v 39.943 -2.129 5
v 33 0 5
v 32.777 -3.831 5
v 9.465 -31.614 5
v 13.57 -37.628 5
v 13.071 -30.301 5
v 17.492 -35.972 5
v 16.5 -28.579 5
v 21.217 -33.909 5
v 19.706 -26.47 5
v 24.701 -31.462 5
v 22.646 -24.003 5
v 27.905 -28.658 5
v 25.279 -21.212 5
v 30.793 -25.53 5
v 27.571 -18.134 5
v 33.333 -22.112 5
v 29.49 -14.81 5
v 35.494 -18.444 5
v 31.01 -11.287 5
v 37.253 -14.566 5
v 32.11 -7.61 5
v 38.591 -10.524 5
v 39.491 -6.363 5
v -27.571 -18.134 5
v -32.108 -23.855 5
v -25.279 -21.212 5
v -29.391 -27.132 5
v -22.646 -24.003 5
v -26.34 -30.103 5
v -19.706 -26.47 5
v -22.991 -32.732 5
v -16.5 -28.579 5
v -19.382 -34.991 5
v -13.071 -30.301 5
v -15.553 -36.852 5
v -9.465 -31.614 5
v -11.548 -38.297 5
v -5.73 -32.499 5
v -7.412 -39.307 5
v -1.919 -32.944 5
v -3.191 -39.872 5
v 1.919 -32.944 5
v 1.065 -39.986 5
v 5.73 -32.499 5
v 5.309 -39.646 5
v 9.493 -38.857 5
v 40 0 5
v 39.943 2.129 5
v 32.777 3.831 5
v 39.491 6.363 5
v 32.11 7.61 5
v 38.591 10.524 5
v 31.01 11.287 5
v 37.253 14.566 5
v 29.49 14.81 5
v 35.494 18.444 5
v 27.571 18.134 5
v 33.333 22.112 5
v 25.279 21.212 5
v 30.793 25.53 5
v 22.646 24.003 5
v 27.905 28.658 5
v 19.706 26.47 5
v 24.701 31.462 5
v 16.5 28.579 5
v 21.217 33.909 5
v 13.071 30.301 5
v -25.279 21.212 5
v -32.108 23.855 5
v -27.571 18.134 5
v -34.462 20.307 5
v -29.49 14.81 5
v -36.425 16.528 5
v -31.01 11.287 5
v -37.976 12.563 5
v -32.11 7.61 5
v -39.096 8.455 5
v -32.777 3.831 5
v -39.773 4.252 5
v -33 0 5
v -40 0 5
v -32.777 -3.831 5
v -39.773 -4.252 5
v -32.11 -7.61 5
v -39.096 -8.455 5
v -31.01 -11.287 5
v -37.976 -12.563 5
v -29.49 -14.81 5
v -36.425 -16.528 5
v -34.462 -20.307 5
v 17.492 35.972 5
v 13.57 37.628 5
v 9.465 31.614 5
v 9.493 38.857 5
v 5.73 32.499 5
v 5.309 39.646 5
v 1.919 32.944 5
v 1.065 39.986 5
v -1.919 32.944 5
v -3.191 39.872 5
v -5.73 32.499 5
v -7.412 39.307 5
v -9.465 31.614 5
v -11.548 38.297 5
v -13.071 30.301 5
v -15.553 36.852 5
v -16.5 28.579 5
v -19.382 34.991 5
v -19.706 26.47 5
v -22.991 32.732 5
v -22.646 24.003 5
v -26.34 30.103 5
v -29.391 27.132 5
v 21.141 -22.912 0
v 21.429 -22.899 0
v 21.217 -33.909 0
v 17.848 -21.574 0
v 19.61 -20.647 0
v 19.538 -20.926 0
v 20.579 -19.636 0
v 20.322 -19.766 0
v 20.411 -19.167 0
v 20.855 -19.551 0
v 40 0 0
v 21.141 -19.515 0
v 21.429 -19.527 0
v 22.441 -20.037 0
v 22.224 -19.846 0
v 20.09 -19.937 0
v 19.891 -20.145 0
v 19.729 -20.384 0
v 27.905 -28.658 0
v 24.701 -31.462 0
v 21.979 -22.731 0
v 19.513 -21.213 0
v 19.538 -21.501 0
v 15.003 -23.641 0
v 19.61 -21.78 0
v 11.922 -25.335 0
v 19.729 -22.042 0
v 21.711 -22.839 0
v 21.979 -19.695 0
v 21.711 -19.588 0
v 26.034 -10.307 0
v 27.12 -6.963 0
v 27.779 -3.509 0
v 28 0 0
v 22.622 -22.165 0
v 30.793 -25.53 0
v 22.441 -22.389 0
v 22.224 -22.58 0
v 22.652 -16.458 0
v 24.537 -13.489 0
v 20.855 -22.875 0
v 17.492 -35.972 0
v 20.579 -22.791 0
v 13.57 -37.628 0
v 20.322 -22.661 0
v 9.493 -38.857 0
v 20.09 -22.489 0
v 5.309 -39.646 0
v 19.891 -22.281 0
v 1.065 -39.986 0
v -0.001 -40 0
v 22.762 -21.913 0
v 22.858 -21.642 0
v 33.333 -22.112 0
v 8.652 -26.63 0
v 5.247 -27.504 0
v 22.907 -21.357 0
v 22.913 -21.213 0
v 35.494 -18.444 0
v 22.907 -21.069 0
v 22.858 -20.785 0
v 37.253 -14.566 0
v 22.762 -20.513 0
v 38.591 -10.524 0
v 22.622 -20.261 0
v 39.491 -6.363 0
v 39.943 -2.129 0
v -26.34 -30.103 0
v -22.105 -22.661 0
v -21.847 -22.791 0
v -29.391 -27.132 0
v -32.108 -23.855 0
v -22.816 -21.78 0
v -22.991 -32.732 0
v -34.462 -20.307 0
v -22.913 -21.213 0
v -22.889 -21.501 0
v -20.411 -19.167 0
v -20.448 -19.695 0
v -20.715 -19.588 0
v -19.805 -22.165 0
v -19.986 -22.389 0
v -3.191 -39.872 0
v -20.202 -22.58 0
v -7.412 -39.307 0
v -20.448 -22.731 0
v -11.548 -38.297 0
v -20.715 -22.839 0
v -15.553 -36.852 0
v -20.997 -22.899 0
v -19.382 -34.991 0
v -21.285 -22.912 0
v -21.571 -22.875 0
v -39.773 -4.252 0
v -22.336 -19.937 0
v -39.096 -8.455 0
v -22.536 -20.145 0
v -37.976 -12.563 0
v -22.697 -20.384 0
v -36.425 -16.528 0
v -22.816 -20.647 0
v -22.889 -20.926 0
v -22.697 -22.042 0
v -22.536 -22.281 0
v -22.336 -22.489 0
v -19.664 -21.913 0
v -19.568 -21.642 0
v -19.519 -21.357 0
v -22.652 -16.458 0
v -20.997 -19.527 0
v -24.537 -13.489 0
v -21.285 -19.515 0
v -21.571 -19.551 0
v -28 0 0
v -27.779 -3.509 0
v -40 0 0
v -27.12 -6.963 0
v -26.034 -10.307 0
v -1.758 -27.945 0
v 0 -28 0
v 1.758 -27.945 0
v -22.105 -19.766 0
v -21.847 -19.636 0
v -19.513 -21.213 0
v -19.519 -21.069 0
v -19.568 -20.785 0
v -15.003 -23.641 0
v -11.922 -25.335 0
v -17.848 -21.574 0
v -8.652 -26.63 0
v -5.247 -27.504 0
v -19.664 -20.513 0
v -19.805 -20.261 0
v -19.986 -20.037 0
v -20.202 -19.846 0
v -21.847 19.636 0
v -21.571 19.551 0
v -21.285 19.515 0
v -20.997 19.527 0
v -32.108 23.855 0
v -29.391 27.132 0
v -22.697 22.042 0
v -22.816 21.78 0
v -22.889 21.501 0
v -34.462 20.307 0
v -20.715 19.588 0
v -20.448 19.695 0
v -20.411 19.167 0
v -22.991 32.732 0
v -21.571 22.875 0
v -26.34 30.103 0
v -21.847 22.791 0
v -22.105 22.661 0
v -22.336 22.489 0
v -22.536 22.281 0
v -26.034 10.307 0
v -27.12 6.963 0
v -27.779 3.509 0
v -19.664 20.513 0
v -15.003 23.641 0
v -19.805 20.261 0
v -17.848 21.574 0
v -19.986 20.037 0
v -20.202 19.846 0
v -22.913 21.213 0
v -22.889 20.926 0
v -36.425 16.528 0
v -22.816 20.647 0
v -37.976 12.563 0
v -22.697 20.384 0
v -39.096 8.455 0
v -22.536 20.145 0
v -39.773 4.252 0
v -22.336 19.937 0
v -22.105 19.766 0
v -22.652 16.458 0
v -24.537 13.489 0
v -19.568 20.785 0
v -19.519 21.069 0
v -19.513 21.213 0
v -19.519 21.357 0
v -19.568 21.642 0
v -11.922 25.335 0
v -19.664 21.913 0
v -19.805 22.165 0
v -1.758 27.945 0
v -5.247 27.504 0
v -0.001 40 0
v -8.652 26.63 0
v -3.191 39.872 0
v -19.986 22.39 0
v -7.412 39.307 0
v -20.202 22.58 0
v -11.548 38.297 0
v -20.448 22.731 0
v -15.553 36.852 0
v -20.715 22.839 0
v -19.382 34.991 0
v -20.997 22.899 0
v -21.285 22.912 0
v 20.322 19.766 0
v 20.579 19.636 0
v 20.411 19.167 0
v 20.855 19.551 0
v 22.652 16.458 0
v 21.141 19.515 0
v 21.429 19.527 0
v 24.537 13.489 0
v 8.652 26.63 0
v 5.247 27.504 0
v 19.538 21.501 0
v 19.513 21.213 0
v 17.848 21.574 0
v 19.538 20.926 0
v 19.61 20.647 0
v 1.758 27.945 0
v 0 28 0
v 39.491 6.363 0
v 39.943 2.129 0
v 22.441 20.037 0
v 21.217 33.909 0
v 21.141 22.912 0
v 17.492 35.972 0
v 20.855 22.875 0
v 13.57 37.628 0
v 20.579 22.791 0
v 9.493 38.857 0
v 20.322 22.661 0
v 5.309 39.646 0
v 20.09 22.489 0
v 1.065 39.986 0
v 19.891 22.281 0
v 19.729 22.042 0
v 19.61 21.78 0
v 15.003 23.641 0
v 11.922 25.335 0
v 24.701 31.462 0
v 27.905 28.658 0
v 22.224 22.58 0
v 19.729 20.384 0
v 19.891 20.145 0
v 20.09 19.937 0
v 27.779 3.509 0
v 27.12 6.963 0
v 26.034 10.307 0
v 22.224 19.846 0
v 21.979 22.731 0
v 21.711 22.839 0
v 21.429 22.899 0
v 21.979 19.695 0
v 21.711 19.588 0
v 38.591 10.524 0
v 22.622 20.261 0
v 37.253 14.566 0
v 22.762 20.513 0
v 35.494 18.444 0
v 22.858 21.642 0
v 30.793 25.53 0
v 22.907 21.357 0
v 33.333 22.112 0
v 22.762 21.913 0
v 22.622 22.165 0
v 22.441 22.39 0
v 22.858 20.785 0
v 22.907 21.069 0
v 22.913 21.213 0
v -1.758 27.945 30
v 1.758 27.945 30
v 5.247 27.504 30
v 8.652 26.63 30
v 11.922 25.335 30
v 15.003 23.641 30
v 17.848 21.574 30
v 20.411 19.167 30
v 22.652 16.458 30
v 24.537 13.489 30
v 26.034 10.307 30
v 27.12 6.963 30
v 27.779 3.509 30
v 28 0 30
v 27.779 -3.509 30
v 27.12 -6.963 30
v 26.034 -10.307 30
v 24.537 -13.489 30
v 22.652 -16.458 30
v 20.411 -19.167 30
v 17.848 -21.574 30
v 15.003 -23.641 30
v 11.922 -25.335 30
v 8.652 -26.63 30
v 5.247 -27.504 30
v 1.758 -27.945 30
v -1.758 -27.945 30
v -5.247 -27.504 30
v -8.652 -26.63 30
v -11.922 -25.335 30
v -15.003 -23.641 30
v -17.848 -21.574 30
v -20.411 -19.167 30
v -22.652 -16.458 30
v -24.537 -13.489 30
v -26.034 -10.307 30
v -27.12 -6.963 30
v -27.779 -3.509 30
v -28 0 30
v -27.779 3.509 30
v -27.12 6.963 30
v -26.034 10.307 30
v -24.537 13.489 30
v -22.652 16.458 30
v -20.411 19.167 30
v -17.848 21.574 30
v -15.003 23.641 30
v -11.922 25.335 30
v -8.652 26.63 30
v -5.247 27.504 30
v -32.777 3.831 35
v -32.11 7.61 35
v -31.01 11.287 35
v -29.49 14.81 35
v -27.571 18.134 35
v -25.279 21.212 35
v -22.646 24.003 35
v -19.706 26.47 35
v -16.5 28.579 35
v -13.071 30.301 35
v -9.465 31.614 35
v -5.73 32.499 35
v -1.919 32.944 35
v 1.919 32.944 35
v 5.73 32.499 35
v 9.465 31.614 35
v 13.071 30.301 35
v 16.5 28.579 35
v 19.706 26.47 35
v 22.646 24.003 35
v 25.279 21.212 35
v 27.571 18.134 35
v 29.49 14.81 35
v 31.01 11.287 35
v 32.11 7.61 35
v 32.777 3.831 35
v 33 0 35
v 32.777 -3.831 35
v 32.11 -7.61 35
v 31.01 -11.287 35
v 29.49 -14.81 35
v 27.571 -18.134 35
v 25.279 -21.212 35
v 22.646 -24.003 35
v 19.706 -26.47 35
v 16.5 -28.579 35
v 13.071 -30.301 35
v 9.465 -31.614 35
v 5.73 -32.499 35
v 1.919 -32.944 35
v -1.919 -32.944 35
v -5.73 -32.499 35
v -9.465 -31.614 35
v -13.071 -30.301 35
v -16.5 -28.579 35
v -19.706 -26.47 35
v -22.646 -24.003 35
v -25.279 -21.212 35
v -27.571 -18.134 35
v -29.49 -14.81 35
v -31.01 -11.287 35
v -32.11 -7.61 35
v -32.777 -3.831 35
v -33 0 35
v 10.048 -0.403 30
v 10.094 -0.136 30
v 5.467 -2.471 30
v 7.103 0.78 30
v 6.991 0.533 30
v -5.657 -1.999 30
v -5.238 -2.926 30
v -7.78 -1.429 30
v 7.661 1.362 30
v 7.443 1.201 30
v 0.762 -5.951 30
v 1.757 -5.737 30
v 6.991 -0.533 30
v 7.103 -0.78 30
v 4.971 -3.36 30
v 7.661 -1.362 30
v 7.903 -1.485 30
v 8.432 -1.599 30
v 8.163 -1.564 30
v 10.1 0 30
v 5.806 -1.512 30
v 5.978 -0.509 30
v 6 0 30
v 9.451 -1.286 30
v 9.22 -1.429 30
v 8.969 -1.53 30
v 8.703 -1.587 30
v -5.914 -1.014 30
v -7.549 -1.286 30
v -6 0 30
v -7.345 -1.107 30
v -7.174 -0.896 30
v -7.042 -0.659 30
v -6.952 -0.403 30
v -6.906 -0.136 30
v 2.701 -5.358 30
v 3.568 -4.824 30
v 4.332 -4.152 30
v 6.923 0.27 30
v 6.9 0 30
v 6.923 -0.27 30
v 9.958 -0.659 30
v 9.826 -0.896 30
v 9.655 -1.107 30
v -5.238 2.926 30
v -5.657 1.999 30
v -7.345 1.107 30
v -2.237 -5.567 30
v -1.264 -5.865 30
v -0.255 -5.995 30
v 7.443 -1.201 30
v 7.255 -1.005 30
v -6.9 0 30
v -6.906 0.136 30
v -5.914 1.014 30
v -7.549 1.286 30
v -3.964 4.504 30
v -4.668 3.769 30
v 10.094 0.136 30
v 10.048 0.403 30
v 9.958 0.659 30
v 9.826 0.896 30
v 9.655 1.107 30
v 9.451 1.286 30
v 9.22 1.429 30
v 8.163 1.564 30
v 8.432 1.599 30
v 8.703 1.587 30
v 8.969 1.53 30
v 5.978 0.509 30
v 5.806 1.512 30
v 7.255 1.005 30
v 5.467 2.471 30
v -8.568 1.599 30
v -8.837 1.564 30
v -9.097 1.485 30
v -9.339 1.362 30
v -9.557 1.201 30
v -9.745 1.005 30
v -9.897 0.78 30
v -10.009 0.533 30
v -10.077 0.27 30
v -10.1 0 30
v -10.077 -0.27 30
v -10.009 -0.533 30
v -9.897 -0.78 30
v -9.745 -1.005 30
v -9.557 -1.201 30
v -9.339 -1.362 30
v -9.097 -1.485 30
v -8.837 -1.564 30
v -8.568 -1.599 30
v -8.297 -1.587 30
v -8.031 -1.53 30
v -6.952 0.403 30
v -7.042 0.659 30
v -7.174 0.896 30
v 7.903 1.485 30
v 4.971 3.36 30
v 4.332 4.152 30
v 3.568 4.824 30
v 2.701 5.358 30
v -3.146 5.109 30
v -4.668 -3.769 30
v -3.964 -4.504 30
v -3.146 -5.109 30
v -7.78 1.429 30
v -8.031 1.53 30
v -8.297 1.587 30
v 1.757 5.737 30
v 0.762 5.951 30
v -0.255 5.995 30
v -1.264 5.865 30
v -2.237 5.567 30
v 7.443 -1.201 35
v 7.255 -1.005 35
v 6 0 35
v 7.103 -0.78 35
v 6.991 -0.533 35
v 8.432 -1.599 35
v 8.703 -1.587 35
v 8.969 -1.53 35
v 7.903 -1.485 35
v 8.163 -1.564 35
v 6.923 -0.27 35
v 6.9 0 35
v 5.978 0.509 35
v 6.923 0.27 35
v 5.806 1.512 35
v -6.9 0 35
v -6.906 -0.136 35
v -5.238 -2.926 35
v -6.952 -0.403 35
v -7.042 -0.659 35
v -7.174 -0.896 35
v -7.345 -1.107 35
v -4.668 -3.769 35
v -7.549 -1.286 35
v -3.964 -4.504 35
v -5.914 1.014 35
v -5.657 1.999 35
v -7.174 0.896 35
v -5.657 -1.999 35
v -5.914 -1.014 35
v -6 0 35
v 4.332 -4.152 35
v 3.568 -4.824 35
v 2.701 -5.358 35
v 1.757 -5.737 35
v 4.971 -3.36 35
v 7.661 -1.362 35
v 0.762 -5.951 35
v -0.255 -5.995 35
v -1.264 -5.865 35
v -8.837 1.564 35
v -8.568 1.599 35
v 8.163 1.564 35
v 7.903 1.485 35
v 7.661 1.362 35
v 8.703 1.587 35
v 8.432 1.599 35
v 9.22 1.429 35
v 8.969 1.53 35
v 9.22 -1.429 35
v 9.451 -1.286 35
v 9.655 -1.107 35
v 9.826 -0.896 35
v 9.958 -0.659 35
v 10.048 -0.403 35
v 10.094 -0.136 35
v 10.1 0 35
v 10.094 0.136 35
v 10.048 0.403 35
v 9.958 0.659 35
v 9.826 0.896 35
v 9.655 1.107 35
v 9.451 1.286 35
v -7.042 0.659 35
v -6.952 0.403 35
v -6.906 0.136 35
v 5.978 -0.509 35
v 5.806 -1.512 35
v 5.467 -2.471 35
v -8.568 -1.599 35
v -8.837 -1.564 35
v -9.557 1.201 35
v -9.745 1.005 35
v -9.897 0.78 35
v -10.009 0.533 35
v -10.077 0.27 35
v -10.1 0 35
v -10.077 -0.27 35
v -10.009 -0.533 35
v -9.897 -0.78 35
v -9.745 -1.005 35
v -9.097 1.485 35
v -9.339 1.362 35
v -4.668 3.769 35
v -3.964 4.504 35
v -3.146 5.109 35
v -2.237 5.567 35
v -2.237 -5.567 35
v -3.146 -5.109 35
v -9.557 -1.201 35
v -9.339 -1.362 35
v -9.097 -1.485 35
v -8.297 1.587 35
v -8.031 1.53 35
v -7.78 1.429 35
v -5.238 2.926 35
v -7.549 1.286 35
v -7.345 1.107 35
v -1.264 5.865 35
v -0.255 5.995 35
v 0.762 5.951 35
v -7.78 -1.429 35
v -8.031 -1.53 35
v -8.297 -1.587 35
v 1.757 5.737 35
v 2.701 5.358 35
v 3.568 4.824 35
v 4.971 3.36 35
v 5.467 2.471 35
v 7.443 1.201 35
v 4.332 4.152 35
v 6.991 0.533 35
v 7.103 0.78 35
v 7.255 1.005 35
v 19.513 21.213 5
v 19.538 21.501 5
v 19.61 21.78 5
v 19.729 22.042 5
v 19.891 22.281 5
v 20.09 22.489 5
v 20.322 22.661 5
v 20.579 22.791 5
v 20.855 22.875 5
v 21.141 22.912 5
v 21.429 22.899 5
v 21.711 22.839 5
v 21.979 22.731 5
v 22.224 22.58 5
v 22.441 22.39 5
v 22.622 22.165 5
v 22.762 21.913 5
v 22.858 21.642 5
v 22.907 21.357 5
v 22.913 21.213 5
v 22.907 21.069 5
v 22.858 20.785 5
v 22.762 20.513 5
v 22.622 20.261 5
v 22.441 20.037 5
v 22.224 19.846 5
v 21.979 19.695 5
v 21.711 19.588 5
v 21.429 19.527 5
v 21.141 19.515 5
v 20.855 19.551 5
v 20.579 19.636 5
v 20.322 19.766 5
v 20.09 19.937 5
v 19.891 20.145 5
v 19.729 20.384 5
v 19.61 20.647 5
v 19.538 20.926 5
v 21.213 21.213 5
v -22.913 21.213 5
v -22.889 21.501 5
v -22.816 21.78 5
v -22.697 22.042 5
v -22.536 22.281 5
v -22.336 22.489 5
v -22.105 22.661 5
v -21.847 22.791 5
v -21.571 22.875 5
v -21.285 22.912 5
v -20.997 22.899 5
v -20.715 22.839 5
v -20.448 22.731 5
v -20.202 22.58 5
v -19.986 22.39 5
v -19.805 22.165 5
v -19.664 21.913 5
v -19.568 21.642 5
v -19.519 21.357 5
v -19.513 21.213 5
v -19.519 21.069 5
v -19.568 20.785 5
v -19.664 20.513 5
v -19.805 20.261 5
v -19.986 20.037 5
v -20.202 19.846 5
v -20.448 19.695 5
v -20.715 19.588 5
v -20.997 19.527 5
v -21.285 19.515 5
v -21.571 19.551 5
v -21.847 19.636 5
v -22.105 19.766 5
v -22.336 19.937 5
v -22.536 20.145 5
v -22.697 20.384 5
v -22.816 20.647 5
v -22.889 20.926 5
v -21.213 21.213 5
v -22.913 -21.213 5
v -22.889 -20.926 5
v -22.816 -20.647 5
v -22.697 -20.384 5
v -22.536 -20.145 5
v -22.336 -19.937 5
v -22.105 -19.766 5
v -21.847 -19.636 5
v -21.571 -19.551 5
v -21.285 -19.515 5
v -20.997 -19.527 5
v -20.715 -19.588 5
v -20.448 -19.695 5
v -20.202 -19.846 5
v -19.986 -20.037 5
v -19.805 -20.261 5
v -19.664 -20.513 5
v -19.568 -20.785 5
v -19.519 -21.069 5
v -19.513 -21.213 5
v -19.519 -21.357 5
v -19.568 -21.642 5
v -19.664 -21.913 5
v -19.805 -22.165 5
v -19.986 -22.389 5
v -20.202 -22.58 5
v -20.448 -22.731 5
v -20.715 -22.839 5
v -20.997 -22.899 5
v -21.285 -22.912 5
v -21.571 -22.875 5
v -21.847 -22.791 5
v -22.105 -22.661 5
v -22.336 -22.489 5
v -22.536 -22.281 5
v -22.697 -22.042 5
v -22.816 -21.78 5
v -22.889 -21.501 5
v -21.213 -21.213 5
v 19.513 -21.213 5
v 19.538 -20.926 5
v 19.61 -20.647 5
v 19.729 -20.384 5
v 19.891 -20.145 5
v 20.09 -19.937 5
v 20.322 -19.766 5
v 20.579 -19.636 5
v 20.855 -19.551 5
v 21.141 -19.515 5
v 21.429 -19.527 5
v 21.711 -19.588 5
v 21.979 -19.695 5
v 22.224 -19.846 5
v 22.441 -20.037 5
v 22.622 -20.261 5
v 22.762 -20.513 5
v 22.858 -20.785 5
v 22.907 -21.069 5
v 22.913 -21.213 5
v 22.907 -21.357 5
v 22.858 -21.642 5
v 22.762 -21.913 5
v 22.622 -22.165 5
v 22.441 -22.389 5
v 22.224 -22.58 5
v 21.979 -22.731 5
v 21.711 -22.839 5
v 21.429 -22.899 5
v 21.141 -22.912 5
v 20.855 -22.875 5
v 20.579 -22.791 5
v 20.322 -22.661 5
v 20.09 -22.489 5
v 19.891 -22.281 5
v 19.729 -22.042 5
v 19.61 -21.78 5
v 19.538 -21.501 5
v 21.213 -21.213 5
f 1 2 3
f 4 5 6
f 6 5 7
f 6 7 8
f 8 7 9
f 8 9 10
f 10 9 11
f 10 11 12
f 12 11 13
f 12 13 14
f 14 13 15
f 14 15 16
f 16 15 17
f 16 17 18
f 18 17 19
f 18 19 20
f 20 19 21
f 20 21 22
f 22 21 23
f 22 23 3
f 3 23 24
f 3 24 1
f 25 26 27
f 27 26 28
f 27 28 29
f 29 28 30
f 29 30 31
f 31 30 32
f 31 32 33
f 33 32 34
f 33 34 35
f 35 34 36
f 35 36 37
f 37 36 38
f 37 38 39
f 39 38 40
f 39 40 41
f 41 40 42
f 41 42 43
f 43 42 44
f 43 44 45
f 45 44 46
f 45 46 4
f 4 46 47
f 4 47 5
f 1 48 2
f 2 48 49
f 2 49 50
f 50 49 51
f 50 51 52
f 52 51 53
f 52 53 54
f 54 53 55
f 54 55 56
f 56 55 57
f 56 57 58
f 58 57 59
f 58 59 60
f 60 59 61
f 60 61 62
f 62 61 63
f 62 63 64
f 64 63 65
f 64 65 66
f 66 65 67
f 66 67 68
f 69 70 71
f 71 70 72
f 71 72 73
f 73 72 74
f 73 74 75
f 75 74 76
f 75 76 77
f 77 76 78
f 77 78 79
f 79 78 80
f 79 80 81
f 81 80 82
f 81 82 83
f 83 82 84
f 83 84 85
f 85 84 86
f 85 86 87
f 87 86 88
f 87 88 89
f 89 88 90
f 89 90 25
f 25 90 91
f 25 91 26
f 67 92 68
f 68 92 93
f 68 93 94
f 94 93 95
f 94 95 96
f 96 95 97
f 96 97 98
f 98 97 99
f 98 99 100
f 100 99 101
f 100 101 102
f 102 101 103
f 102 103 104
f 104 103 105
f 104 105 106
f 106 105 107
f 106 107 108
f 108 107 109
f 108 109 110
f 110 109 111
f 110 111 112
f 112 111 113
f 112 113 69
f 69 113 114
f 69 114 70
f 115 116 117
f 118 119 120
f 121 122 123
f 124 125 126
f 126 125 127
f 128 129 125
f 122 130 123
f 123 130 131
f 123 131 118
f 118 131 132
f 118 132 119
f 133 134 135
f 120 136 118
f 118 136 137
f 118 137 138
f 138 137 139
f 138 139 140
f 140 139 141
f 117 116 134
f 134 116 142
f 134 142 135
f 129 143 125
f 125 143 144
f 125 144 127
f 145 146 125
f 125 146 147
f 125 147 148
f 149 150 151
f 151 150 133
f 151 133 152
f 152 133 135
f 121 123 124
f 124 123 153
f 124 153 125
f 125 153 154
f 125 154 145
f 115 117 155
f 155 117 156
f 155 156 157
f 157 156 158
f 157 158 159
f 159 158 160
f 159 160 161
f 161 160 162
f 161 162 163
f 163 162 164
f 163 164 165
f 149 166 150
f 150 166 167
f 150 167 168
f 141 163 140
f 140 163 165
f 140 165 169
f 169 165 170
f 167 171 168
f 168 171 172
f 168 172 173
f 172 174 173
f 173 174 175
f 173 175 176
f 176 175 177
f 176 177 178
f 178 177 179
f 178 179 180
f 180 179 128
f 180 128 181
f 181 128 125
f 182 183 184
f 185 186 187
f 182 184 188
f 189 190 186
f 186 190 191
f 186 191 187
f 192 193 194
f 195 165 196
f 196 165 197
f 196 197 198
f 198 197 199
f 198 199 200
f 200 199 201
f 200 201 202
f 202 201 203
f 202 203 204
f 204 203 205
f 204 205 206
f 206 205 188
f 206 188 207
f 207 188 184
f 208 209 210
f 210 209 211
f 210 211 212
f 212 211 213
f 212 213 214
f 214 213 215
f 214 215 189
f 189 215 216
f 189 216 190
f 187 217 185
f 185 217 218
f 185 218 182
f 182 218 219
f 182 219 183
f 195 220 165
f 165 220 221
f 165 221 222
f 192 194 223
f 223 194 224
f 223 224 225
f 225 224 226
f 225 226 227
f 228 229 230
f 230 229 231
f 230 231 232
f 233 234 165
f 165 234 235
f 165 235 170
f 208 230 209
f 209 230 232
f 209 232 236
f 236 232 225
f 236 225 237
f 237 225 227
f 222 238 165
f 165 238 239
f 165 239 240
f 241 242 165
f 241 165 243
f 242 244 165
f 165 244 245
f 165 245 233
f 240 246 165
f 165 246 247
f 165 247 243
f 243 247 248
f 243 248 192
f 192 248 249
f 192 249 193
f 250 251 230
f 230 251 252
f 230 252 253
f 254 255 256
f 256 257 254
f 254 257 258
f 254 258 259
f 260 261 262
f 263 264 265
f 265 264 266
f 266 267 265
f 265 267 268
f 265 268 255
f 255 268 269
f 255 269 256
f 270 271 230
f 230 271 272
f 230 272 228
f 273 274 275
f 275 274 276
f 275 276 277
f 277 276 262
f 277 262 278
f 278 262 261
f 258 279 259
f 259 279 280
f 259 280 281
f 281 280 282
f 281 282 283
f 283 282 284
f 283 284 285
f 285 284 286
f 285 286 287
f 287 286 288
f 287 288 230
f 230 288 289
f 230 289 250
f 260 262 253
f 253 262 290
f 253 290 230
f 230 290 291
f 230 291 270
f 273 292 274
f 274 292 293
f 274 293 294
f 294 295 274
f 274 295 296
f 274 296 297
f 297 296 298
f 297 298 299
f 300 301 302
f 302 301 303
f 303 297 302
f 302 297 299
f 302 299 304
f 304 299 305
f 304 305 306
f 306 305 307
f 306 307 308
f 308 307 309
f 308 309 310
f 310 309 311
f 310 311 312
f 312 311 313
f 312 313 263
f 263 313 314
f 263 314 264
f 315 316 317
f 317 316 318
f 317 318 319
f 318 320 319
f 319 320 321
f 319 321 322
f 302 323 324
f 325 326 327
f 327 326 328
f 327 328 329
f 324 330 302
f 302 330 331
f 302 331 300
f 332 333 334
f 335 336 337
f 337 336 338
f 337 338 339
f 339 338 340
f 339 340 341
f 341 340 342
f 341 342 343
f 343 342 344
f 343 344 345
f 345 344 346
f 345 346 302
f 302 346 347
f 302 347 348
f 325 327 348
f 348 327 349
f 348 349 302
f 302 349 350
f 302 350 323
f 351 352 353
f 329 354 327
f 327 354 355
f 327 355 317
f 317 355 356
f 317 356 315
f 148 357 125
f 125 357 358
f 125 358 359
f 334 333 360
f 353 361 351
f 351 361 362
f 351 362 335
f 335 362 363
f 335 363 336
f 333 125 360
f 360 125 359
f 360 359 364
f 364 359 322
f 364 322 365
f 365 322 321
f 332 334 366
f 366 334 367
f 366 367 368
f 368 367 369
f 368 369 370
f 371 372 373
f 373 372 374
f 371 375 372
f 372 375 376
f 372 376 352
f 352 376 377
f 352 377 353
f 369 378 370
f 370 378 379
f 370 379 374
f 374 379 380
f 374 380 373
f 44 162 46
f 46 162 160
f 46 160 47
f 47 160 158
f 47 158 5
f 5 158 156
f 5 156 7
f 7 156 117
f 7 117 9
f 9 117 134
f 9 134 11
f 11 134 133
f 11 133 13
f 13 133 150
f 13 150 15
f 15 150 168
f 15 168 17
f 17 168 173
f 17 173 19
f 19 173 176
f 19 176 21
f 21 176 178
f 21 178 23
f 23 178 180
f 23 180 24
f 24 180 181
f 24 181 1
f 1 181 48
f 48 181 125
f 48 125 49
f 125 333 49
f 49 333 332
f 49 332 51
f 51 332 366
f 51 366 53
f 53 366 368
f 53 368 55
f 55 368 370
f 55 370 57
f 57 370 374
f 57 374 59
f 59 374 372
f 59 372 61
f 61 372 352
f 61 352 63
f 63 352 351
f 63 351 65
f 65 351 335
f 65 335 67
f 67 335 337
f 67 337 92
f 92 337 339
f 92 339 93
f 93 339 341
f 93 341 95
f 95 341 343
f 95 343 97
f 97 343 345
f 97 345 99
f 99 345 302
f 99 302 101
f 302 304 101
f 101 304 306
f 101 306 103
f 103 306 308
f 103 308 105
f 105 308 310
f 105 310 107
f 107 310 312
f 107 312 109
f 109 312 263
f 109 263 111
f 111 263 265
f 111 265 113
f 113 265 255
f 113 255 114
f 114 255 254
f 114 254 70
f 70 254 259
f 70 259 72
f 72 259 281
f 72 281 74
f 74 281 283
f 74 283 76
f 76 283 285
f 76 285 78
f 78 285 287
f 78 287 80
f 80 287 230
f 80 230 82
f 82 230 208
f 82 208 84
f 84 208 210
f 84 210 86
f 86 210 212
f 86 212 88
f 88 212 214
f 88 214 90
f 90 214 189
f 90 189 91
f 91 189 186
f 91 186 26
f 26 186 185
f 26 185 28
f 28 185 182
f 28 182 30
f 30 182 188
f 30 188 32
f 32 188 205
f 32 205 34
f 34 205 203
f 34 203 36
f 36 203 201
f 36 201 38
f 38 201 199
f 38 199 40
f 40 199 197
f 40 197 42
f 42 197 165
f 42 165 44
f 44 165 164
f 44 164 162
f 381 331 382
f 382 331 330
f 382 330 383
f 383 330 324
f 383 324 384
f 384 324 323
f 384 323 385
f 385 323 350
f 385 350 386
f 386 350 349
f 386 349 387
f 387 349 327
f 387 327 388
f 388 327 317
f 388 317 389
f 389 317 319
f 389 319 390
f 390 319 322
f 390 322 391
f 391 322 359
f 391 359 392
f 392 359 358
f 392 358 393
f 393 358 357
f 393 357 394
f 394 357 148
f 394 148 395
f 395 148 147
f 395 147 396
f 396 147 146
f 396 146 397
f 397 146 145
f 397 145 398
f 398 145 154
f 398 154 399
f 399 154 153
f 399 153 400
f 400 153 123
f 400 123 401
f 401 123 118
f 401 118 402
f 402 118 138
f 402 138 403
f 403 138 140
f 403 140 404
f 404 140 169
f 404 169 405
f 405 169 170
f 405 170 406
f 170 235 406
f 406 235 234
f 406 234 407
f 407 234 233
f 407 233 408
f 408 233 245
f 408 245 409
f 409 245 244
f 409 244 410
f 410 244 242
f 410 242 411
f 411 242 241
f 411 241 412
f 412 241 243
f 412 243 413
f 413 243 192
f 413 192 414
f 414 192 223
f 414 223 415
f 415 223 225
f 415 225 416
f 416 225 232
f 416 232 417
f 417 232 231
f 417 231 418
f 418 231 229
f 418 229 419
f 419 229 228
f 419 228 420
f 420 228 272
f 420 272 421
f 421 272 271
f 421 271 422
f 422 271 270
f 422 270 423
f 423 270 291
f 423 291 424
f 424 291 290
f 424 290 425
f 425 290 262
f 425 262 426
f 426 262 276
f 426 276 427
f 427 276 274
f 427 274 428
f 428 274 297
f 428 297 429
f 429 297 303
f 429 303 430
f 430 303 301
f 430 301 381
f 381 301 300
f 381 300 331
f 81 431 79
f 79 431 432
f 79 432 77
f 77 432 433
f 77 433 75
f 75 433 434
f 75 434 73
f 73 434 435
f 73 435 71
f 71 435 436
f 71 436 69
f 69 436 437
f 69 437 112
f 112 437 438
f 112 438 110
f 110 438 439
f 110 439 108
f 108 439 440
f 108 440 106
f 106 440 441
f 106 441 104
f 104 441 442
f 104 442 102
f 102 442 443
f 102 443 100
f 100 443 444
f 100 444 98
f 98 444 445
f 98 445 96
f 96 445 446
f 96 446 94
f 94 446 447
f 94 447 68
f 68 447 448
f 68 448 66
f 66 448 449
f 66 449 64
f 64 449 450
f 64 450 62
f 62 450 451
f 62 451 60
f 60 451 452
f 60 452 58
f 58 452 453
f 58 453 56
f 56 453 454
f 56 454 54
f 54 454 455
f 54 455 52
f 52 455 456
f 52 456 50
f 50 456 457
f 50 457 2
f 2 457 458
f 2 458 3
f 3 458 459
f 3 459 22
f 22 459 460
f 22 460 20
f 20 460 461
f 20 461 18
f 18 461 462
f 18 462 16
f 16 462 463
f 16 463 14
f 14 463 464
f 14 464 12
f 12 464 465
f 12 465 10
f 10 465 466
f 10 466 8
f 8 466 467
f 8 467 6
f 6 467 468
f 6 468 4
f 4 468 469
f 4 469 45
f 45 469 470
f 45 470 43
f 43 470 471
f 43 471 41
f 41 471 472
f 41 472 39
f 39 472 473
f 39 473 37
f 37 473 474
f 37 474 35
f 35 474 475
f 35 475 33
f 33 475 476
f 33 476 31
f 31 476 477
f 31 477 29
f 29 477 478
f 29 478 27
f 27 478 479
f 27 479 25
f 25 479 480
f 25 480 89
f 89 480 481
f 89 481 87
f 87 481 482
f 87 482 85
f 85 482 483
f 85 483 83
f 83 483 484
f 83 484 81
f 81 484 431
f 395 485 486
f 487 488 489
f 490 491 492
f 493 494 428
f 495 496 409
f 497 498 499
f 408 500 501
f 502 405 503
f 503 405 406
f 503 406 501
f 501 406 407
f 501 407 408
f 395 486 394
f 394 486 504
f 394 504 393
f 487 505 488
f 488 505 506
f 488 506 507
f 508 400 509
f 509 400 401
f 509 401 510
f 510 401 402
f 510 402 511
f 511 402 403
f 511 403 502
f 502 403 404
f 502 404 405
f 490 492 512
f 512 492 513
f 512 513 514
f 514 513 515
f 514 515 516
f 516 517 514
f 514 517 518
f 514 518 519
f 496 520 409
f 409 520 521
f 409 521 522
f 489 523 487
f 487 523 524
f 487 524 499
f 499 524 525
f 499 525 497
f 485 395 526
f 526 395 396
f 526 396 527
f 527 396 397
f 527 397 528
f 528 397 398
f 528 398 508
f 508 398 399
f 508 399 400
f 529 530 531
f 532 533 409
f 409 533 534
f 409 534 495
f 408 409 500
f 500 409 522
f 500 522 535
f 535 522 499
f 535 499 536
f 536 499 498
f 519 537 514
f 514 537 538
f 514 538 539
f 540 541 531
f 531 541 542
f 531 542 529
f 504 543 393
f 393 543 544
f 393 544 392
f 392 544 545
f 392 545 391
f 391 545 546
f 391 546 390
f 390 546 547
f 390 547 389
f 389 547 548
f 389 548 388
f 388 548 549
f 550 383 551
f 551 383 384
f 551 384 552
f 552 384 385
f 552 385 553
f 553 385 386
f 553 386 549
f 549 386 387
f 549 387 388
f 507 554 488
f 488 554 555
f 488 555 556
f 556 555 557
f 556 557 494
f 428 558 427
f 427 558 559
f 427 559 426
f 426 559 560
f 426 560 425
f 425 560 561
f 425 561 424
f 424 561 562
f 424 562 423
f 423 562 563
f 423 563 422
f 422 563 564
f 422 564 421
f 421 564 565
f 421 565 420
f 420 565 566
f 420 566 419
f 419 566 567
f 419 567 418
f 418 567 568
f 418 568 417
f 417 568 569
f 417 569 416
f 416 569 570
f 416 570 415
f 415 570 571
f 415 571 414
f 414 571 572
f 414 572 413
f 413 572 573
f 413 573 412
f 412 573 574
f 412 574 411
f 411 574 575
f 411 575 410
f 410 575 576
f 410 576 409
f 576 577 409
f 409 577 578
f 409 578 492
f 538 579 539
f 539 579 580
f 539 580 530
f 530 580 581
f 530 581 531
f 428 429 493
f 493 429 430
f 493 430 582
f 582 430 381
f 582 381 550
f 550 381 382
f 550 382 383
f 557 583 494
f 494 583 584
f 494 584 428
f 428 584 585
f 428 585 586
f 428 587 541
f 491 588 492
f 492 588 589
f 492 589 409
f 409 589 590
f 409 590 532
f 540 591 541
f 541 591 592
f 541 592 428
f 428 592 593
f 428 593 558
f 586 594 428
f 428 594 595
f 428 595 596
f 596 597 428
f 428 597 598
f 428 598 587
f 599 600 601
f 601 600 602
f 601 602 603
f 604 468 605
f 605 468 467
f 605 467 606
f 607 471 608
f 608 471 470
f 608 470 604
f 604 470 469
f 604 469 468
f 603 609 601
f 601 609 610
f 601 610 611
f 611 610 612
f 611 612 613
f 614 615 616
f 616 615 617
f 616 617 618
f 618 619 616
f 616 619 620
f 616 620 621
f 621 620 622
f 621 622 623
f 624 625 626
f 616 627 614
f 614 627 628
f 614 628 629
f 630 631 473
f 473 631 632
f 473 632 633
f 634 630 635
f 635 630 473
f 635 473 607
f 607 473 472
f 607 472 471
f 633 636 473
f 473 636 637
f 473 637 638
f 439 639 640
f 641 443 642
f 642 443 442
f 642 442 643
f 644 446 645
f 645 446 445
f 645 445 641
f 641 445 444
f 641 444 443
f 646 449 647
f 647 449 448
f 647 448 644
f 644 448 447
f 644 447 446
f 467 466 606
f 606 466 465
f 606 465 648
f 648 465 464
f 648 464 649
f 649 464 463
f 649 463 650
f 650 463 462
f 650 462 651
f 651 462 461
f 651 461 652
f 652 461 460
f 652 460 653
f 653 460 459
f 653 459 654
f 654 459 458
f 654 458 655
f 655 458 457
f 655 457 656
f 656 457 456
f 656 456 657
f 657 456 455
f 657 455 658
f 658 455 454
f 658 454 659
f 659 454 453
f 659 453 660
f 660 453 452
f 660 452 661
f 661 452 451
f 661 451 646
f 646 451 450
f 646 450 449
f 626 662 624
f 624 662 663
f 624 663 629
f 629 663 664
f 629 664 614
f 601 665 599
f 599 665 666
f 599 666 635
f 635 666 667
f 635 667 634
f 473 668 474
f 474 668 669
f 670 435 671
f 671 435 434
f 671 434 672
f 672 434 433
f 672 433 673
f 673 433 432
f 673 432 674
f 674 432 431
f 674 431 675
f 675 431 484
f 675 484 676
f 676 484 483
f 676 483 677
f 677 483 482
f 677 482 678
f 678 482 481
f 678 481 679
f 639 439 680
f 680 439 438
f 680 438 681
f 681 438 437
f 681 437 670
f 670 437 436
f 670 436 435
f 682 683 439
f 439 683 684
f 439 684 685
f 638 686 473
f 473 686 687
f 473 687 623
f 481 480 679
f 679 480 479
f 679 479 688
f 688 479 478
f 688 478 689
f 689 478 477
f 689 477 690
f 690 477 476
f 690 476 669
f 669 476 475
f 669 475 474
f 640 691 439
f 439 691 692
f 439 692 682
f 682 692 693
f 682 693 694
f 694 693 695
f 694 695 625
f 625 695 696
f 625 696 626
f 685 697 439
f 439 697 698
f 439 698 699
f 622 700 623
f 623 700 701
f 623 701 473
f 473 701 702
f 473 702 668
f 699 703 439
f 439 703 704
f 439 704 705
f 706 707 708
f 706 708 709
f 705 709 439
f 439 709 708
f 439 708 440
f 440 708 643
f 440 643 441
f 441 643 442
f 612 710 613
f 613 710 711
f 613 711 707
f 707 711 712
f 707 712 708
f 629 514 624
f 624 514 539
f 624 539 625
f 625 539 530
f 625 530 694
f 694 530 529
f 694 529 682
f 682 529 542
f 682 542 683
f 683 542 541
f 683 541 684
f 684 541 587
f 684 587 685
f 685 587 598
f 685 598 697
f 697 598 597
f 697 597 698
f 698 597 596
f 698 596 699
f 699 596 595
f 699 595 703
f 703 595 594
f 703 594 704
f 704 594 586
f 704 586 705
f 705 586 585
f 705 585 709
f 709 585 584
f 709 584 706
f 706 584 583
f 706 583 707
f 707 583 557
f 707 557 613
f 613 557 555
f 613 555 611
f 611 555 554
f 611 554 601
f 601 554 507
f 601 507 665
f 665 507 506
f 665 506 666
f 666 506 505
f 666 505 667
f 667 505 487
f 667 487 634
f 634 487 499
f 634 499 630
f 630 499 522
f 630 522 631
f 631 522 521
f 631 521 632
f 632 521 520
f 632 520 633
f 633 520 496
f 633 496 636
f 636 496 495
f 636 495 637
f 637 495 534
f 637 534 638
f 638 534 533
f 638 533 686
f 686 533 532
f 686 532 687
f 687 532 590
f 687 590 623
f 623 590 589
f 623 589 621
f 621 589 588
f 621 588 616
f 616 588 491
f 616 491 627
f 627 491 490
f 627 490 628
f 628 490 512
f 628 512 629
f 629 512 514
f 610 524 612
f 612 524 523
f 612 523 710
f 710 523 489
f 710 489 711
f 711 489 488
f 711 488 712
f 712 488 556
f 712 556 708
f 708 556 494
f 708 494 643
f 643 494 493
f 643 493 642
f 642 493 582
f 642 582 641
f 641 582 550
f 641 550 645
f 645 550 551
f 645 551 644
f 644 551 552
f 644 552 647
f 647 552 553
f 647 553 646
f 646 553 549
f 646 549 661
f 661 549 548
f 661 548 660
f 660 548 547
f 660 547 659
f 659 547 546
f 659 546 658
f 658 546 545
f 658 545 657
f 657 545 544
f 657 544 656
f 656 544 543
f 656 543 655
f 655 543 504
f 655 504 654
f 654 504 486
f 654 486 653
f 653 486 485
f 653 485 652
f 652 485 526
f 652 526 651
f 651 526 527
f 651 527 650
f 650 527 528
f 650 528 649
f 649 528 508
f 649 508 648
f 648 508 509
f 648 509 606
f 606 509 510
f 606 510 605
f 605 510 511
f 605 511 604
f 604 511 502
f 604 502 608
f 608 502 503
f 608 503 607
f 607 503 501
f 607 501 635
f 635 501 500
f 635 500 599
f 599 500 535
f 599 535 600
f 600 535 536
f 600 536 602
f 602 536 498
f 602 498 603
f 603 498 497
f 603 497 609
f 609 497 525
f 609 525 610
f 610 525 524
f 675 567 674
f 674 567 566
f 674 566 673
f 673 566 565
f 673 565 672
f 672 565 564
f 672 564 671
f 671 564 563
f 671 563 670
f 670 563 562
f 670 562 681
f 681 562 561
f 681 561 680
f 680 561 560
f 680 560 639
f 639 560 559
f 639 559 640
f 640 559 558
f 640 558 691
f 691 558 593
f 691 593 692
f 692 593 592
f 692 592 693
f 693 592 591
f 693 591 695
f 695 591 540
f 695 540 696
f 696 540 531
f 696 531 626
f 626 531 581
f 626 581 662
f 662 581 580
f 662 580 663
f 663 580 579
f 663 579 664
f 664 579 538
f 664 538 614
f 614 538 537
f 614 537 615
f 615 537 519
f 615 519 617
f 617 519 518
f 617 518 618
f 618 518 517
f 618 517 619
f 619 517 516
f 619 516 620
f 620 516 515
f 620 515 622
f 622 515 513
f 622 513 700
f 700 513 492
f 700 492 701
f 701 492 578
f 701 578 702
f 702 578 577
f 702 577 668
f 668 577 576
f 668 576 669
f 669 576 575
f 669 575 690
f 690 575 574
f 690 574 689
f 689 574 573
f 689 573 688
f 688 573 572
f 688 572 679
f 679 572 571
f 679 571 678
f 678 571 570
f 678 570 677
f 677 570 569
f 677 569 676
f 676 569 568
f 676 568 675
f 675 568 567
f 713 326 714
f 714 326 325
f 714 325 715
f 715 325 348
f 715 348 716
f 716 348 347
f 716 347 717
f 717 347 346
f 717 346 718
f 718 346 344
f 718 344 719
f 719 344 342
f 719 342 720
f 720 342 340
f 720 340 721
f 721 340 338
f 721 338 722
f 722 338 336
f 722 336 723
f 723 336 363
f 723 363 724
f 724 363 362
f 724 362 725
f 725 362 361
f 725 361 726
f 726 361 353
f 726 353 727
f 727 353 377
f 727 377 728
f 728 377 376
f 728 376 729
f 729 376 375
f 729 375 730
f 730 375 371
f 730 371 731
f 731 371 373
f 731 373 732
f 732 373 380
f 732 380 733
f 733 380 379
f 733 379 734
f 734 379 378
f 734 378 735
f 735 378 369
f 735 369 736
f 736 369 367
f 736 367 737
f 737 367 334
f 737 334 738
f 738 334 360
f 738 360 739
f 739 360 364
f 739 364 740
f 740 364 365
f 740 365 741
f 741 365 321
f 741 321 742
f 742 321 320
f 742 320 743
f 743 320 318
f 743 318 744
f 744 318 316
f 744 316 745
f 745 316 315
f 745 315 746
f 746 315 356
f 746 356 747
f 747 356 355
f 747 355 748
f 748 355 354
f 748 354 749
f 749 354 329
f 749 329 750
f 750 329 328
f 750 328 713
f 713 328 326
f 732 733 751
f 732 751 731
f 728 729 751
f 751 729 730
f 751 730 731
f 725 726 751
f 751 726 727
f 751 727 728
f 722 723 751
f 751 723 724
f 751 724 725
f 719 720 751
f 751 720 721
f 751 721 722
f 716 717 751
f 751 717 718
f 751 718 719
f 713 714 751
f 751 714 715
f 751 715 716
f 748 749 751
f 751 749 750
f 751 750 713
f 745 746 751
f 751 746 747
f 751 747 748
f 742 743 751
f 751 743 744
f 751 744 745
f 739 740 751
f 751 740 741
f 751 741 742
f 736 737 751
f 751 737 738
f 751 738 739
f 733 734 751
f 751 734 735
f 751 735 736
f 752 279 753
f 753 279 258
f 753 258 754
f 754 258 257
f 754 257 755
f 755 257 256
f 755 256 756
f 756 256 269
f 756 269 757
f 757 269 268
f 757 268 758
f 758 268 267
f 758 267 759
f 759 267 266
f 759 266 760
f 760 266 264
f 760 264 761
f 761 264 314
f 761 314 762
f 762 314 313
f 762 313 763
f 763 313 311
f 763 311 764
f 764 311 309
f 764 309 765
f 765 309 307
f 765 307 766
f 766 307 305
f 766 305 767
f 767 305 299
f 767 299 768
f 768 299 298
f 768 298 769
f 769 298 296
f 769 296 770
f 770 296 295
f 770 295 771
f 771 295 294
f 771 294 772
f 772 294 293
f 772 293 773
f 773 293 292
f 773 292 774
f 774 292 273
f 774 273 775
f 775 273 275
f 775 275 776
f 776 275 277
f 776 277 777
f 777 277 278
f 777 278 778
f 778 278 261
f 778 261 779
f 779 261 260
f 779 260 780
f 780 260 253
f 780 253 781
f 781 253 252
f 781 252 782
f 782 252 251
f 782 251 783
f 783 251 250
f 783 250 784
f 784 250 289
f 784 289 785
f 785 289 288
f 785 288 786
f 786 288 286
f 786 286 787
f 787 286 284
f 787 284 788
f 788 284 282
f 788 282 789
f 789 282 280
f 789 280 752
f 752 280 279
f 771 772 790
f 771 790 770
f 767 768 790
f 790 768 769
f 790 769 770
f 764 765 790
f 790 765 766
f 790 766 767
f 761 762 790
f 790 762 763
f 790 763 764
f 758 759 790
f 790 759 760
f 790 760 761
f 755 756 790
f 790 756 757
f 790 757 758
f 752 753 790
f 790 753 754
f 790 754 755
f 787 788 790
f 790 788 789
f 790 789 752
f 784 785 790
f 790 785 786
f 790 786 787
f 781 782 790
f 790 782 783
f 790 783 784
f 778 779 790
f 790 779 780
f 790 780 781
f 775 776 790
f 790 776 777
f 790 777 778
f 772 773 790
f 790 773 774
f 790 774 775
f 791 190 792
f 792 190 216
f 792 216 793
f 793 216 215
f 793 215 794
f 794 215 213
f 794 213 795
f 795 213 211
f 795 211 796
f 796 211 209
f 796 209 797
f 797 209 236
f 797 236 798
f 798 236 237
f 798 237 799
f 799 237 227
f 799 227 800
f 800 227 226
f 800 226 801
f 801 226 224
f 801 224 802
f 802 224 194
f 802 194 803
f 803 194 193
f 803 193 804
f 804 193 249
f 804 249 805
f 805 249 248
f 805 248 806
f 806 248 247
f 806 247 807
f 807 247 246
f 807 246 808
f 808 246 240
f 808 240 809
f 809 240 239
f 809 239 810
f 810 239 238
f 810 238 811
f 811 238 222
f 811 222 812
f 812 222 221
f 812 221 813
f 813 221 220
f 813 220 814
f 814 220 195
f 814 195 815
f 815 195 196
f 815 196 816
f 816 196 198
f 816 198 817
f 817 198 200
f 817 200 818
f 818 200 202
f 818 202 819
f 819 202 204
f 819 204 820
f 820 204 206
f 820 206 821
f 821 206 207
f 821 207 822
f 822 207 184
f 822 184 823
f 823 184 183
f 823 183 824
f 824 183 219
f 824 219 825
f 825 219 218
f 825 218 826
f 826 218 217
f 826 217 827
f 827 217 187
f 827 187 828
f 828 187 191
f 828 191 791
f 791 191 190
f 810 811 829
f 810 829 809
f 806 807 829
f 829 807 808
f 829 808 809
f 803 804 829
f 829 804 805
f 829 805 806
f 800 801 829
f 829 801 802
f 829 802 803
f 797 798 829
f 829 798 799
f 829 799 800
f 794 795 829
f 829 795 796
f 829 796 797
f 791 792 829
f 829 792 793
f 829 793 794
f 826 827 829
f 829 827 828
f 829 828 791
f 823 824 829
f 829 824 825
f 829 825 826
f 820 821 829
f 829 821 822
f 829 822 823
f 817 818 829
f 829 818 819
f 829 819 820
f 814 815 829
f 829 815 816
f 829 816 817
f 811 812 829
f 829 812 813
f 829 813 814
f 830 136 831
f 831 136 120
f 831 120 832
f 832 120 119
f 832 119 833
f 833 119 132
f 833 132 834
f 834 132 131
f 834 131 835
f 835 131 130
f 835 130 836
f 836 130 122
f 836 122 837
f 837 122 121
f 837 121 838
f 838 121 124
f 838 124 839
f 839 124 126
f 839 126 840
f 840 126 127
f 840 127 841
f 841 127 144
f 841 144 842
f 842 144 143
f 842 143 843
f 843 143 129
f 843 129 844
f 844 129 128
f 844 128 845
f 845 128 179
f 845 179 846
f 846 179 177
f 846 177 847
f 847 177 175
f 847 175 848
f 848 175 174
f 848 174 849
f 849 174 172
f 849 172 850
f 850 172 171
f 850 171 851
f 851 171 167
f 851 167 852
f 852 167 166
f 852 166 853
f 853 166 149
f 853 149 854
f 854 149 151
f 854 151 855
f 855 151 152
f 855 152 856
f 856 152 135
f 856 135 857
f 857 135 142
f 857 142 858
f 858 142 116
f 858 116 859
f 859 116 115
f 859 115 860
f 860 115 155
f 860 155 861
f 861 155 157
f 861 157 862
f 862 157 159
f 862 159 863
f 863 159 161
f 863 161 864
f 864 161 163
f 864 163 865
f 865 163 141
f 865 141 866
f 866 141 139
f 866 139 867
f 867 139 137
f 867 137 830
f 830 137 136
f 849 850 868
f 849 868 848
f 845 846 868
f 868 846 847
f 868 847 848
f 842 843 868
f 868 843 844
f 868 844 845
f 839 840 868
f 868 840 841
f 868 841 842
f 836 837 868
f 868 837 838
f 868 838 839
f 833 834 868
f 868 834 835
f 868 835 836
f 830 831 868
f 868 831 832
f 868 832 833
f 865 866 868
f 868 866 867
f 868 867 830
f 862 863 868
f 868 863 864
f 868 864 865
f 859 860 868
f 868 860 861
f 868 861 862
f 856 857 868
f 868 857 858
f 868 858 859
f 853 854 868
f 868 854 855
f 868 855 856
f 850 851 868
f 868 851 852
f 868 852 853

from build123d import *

# Parameters (mm, degrees)
SKETCH1_R           = 40
SKETCH1_R_2         = 28
FLANGE_DEPTH        = 5
SKETCH2_R           = 33
SKETCH2_R_2         = 28
TUBE_DEPTH          = 25
SKETCH3_R           = 33
PLATE_DEPTH         = 5
SKETCH4_R           = 6
SHAFT_HOLE_DEPTH    = 5
SKETCH5_R           = 1.6
MOTOR_SCREWS_DEPTH  = 5
SKETCH6_R           = 1.7
GROMMET_HOLES_DEPTH = 5


with BuildPart() as part:
    # Sketch1 → Flange (new body)
    with BuildSketch(Plane.XY):
        Circle(SKETCH1_R)
        Circle(SKETCH1_R_2, mode=Mode.SUBTRACT)
    extrude(amount=FLANGE_DEPTH)

    # Sketch2 → Tube (add)
    with BuildSketch(Plane.XY.offset(5)):
        Circle(SKETCH2_R)
        Circle(SKETCH2_R_2, mode=Mode.SUBTRACT)
    extrude(amount=TUBE_DEPTH)

    # Sketch3 → Plate (add)
    with BuildSketch(Plane.XY.offset(30)):
        Circle(SKETCH3_R)
    extrude(amount=PLATE_DEPTH)

    # Sketch4 → Shaft_hole (cut)
    with BuildSketch(Plane.XY.offset(30)):
        Circle(SKETCH4_R)
    extrude(amount=SHAFT_HOLE_DEPTH, mode=Mode.SUBTRACT)

    # Sketch5 → Motor_screws (cut)
    with BuildSketch(Plane.XY.offset(30)):
        with Locations((-8.5, 0)):
            Circle(SKETCH5_R)
        with Locations((8.5, 0)):
            Circle(SKETCH5_R)
    extrude(amount=MOTOR_SCREWS_DEPTH, mode=Mode.SUBTRACT)

    # Sketch6 → Grommet_holes (cut)
    with BuildSketch(Plane.XY):
        with Locations((21.213203436, 21.213203436)):
            Circle(SKETCH6_R)
        with Locations((-21.213203436, 21.213203436)):
            Circle(SKETCH6_R)
        with Locations((-21.213203436, -21.213203436)):
            Circle(SKETCH6_R)
        with Locations((21.213203436, -21.213203436)):
            Circle(SKETCH6_R)
    extrude(amount=GROMMET_HOLES_DEPTH, mode=Mode.SUBTRACT)


solid = part.part
